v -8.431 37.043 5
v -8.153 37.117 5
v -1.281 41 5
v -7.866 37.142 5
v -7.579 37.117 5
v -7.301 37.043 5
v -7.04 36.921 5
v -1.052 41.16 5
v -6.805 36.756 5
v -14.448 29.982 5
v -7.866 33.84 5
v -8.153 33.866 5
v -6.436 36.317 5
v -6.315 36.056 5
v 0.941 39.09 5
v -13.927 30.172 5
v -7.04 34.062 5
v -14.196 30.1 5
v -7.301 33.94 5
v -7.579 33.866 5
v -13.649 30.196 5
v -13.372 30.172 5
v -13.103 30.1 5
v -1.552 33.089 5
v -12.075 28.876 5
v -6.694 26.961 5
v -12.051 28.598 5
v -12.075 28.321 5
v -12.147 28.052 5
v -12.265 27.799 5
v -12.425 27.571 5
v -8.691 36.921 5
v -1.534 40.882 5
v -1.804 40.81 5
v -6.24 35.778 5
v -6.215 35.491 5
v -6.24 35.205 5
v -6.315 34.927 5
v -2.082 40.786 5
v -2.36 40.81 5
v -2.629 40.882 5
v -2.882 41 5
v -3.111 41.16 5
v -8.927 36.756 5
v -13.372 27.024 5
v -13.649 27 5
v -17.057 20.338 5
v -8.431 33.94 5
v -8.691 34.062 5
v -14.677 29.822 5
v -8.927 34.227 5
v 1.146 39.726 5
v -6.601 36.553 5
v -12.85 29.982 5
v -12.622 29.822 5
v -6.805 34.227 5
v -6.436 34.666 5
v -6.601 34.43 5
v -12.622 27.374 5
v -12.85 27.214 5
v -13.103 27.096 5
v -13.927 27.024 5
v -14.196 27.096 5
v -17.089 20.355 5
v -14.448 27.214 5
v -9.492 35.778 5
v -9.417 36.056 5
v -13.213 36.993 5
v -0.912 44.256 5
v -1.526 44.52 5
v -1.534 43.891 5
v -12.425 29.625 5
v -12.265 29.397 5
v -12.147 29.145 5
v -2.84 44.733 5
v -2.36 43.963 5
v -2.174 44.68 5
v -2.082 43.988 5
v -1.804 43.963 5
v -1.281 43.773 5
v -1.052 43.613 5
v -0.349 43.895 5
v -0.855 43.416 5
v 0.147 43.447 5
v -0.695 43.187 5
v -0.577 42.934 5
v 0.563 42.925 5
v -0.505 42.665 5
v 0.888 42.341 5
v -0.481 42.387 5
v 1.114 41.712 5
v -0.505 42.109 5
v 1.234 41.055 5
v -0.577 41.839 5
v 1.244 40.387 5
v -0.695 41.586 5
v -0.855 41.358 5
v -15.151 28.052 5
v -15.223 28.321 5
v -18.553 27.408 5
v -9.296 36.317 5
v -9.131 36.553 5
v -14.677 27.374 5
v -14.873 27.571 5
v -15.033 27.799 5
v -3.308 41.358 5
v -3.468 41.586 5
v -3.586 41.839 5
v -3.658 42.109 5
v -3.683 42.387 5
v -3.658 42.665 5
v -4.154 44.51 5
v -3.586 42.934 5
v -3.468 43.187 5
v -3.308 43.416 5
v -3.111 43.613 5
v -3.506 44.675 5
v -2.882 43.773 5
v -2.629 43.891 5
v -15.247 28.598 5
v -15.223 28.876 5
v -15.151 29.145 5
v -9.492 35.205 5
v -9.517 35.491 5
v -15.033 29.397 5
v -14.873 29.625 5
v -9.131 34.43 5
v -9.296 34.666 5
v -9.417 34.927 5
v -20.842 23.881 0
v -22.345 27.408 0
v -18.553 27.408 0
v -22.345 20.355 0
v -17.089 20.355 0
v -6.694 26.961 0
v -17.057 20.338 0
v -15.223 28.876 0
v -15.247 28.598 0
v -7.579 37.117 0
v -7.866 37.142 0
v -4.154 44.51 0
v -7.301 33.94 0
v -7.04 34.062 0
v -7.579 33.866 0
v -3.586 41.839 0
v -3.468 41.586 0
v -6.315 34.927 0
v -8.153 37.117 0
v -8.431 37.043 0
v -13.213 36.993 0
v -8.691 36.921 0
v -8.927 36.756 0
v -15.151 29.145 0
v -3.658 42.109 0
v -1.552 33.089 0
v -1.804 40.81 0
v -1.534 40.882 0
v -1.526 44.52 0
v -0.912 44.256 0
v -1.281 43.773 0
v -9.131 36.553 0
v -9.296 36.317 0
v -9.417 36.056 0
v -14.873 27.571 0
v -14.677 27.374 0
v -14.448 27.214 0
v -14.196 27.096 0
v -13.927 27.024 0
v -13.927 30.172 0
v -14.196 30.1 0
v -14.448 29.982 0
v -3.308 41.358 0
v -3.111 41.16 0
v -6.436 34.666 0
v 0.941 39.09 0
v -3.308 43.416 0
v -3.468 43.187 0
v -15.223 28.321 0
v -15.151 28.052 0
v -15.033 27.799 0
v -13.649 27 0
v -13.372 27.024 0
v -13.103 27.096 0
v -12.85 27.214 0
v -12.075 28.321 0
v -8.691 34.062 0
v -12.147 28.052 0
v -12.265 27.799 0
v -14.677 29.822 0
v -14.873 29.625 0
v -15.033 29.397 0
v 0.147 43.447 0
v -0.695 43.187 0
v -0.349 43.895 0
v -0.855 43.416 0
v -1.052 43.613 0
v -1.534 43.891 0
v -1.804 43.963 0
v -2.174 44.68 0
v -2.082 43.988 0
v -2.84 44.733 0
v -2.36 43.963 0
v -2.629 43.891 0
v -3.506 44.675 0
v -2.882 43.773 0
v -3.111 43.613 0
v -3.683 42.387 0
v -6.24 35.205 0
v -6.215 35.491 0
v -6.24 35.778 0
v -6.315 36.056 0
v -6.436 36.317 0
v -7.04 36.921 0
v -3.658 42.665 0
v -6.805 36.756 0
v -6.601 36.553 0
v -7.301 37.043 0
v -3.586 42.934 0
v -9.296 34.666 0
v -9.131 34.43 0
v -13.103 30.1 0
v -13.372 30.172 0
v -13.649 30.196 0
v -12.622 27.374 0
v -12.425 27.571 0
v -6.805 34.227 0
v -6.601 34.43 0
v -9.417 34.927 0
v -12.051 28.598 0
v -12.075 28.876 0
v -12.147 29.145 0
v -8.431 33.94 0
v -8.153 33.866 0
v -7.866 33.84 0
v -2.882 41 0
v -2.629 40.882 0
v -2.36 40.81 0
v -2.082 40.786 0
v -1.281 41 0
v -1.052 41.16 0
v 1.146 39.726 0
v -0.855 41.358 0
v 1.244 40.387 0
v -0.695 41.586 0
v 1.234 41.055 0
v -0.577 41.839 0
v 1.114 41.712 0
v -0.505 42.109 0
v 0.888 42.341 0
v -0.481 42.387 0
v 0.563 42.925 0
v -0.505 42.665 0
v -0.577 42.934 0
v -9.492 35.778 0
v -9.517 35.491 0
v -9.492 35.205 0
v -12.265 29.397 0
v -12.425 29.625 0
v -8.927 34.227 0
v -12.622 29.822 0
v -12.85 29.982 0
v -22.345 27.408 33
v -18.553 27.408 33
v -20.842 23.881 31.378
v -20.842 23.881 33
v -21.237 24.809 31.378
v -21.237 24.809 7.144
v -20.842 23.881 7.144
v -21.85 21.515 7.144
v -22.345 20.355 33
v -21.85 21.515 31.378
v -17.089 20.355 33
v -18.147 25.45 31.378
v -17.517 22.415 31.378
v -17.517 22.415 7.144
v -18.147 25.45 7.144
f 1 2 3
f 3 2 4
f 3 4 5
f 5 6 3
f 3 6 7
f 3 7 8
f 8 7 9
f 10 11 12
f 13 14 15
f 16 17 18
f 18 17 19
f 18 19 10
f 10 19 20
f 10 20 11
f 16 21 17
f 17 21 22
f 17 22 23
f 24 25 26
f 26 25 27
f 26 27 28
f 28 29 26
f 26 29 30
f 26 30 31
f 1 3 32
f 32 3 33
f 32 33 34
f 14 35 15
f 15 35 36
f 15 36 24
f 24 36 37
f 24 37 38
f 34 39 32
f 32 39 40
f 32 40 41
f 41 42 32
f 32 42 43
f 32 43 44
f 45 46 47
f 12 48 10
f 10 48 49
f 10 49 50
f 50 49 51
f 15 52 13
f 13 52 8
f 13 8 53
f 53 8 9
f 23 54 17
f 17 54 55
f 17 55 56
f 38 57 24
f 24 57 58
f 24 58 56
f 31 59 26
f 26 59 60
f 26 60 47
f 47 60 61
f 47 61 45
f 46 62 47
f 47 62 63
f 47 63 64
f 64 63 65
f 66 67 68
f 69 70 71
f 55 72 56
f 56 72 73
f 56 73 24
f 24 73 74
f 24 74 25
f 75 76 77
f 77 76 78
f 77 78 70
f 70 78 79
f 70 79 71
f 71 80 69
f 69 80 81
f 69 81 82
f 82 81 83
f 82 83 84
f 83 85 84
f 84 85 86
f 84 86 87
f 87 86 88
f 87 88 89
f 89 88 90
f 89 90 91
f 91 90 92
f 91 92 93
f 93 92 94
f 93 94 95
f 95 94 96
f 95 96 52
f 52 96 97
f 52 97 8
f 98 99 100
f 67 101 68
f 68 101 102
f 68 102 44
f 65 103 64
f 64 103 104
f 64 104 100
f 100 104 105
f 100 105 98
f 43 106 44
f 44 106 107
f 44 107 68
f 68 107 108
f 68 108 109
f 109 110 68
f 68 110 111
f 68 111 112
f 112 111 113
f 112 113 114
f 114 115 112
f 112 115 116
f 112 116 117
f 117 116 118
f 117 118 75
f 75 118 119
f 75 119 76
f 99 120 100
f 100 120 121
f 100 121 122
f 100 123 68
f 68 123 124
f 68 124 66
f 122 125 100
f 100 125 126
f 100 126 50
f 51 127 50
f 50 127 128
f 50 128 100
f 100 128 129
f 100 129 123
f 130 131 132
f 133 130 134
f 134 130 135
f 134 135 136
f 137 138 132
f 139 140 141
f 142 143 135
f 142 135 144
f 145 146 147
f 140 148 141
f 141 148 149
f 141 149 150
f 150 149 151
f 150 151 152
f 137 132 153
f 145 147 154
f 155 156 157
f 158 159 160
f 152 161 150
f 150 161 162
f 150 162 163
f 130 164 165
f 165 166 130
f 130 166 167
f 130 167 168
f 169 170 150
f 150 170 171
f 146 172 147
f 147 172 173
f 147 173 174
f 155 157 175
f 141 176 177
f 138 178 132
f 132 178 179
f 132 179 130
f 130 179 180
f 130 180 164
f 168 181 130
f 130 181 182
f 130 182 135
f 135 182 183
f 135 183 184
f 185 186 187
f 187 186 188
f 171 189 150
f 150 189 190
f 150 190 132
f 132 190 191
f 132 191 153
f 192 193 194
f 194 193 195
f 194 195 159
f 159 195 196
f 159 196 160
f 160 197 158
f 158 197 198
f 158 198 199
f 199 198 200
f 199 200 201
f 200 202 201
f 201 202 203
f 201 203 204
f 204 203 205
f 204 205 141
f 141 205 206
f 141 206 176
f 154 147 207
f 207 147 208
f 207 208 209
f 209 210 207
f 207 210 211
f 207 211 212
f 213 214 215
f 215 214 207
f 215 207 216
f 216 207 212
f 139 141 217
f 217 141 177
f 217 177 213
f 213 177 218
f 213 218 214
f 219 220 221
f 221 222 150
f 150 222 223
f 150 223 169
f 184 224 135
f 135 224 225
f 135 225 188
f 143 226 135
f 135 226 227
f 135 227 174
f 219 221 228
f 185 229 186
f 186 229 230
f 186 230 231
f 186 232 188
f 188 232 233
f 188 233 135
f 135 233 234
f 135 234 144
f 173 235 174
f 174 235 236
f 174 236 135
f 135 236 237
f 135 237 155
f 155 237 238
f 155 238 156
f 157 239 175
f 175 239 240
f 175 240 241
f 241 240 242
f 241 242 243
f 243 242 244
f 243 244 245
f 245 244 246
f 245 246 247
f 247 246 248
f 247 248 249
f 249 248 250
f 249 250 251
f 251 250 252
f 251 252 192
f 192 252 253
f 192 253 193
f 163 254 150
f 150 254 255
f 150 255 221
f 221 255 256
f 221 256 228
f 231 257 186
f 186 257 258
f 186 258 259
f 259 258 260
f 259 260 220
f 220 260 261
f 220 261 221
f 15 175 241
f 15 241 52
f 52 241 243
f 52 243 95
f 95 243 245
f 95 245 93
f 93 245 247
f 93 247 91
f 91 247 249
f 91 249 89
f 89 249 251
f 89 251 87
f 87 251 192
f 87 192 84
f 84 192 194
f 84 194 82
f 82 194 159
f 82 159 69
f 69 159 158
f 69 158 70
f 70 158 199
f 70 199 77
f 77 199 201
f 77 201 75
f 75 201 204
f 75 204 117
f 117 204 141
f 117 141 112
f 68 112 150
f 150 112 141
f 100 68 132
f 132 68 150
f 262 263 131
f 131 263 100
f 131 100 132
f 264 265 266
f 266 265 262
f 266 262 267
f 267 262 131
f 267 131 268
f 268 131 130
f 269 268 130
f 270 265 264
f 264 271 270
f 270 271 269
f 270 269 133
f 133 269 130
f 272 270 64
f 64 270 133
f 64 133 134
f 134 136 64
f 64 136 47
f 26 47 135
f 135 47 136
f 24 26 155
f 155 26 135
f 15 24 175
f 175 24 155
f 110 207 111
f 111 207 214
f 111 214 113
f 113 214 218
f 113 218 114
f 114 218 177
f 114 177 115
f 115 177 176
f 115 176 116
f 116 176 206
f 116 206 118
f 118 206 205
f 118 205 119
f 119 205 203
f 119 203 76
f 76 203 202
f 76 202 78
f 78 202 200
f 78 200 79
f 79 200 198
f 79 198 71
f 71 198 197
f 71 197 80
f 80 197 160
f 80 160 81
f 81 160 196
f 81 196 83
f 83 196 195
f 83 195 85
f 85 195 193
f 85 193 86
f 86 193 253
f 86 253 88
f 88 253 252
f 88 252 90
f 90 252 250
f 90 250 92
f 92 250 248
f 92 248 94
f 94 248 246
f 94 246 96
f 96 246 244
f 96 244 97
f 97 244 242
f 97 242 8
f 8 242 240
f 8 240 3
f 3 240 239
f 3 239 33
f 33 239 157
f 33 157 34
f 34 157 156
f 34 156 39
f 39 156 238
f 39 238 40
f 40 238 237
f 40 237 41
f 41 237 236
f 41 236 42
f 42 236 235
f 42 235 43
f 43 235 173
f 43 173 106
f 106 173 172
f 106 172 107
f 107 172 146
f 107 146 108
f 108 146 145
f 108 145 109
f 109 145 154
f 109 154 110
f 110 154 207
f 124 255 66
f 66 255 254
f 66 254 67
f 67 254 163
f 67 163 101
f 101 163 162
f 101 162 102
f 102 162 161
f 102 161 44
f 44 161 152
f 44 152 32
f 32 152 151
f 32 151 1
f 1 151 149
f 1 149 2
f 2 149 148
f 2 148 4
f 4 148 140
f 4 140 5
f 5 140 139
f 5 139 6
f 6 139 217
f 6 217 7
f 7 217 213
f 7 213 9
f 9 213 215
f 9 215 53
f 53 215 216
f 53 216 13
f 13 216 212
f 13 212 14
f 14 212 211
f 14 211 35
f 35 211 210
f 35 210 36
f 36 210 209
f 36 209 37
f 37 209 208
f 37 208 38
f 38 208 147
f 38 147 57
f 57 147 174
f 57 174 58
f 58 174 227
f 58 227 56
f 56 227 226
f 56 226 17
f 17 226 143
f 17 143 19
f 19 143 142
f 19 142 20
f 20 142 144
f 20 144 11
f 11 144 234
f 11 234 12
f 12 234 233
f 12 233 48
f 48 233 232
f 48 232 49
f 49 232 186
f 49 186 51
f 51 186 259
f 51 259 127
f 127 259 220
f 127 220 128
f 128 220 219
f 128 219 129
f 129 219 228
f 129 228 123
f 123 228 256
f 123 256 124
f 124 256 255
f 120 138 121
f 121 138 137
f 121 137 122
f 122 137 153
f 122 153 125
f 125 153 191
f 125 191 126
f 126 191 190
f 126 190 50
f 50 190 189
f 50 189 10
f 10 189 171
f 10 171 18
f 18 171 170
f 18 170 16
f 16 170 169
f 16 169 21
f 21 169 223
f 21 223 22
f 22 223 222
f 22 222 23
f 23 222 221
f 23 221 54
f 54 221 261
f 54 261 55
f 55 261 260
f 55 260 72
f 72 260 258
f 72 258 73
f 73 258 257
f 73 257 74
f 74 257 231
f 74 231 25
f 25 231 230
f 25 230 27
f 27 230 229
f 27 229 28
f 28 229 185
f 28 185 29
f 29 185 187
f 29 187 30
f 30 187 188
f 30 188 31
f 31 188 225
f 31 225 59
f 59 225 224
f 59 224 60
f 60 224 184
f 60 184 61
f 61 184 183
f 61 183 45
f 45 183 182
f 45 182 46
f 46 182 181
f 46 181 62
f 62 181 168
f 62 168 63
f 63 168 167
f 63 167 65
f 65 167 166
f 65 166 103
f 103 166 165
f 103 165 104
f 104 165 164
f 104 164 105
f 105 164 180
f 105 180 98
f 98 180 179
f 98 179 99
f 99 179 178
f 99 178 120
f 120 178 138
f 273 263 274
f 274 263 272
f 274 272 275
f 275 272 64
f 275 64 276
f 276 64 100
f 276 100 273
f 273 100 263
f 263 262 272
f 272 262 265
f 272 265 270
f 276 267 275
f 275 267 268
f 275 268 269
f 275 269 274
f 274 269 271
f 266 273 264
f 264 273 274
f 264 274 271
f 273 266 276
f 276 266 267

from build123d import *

# Parameters (mm, degrees)
CROQUIS1_R              = 1.600993429
CROQUIS1_R_2            = 1.650918845
CROQUIS1_R_3            = 1.598160281
SALIENTE_EXTRUIR1_DEPTH = 5
SALIENTE_EXTRUIR2_DEPTH = 28
CROQUIS3_W              = 24.234712775
CROQUIS3_H              = 3.1
CORTAR_EXTRUIR2_DEPTH   = 35


with BuildPart() as part:
    # Croquis1 → Saliente-Extruir1 (new body)
    with BuildSketch(Plane.XY):
        with BuildLine():
            Line((-19.813726886, 27.408212729), (-22.344749079, 27.408212729))
            Line((-22.344749079, 27.408212729), (-20.84194462, 23.881480403))
            Line((-20.84194462, 23.881480403), (-22.344749079, 20.354748078))
            Line((-22.344749079, 20.354748078), (-19.813726886, 20.354748078))
            Line((-19.813726886, 20.354748078), (-17.089167092, 20.354748078))
            ThreePointArc((-17.089167092, 20.354748078), (-17.073233268, 20.346247985), (-17.05726125, 20.337819881))
            Line((-17.05726125, 20.337819881), (-6.693946802, 26.960720035))
            Line((-6.693946802, 26.960720035), (-1.55164568, 33.089075871))
            Line((-1.55164568, 33.089075871), (0.94121729, 39.089722795))
            ThreePointArc((0.94121729, 39.089722795), (0.14668389, 43.447470603), (-4.153529562, 44.510209303))
            Line((-4.153529562, 44.510209303), (-13.213359782, 36.992537931))
            Line((-13.213359782, 36.992537931), (-18.553173623, 27.408212729))
            Line((-18.553173623, 27.408212729), (-19.813726886, 27.408212729))
        make_face()
        with Locations((-2.081556076, 42.38660259)):
            Circle(CROQUIS1_R, mode=Mode.SUBTRACT)
        with Locations((-7.865918923, 35.491404278)):
            Circle(CROQUIS1_R_2, mode=Mode.SUBTRACT)
        with Locations((-13.649232709, 28.598160609)):
            Circle(CROQUIS1_R_3, mode=Mode.SUBTRACT)
    extrude(amount=SALIENTE_EXTRUIR1_DEPTH)

    # Croquis2 → Saliente-Extruir2 (add)
    with BuildSketch(Plane.XY.offset(5)):
        Polygon((-22.344749079, 20.354748078), (-17.089167092, 20.354748078), (-18.553173623, 27.408212729), (-22.344749079, 27.408212729), (-20.84194462, 23.881480403), align=None)
    extrude(amount=SALIENTE_EXTRUIR2_DEPTH)

    # Croquis3 → Cortar-Extruir2 (cut)
    with BuildSketch(Plane(origin=(-12.33305174, -2.559829698, 0), x_dir=(0, 0, -1), z_dir=(0.9791316303558096, 0.2032270908042881, 0))):
        with Locations((-19.260916646, 27.056755515)):
            Rectangle(CROQUIS3_W, CROQUIS3_H)
    extrude(amount=-CORTAR_EXTRUIR2_DEPTH, mode=Mode.SUBTRACT)


solid = part.part
